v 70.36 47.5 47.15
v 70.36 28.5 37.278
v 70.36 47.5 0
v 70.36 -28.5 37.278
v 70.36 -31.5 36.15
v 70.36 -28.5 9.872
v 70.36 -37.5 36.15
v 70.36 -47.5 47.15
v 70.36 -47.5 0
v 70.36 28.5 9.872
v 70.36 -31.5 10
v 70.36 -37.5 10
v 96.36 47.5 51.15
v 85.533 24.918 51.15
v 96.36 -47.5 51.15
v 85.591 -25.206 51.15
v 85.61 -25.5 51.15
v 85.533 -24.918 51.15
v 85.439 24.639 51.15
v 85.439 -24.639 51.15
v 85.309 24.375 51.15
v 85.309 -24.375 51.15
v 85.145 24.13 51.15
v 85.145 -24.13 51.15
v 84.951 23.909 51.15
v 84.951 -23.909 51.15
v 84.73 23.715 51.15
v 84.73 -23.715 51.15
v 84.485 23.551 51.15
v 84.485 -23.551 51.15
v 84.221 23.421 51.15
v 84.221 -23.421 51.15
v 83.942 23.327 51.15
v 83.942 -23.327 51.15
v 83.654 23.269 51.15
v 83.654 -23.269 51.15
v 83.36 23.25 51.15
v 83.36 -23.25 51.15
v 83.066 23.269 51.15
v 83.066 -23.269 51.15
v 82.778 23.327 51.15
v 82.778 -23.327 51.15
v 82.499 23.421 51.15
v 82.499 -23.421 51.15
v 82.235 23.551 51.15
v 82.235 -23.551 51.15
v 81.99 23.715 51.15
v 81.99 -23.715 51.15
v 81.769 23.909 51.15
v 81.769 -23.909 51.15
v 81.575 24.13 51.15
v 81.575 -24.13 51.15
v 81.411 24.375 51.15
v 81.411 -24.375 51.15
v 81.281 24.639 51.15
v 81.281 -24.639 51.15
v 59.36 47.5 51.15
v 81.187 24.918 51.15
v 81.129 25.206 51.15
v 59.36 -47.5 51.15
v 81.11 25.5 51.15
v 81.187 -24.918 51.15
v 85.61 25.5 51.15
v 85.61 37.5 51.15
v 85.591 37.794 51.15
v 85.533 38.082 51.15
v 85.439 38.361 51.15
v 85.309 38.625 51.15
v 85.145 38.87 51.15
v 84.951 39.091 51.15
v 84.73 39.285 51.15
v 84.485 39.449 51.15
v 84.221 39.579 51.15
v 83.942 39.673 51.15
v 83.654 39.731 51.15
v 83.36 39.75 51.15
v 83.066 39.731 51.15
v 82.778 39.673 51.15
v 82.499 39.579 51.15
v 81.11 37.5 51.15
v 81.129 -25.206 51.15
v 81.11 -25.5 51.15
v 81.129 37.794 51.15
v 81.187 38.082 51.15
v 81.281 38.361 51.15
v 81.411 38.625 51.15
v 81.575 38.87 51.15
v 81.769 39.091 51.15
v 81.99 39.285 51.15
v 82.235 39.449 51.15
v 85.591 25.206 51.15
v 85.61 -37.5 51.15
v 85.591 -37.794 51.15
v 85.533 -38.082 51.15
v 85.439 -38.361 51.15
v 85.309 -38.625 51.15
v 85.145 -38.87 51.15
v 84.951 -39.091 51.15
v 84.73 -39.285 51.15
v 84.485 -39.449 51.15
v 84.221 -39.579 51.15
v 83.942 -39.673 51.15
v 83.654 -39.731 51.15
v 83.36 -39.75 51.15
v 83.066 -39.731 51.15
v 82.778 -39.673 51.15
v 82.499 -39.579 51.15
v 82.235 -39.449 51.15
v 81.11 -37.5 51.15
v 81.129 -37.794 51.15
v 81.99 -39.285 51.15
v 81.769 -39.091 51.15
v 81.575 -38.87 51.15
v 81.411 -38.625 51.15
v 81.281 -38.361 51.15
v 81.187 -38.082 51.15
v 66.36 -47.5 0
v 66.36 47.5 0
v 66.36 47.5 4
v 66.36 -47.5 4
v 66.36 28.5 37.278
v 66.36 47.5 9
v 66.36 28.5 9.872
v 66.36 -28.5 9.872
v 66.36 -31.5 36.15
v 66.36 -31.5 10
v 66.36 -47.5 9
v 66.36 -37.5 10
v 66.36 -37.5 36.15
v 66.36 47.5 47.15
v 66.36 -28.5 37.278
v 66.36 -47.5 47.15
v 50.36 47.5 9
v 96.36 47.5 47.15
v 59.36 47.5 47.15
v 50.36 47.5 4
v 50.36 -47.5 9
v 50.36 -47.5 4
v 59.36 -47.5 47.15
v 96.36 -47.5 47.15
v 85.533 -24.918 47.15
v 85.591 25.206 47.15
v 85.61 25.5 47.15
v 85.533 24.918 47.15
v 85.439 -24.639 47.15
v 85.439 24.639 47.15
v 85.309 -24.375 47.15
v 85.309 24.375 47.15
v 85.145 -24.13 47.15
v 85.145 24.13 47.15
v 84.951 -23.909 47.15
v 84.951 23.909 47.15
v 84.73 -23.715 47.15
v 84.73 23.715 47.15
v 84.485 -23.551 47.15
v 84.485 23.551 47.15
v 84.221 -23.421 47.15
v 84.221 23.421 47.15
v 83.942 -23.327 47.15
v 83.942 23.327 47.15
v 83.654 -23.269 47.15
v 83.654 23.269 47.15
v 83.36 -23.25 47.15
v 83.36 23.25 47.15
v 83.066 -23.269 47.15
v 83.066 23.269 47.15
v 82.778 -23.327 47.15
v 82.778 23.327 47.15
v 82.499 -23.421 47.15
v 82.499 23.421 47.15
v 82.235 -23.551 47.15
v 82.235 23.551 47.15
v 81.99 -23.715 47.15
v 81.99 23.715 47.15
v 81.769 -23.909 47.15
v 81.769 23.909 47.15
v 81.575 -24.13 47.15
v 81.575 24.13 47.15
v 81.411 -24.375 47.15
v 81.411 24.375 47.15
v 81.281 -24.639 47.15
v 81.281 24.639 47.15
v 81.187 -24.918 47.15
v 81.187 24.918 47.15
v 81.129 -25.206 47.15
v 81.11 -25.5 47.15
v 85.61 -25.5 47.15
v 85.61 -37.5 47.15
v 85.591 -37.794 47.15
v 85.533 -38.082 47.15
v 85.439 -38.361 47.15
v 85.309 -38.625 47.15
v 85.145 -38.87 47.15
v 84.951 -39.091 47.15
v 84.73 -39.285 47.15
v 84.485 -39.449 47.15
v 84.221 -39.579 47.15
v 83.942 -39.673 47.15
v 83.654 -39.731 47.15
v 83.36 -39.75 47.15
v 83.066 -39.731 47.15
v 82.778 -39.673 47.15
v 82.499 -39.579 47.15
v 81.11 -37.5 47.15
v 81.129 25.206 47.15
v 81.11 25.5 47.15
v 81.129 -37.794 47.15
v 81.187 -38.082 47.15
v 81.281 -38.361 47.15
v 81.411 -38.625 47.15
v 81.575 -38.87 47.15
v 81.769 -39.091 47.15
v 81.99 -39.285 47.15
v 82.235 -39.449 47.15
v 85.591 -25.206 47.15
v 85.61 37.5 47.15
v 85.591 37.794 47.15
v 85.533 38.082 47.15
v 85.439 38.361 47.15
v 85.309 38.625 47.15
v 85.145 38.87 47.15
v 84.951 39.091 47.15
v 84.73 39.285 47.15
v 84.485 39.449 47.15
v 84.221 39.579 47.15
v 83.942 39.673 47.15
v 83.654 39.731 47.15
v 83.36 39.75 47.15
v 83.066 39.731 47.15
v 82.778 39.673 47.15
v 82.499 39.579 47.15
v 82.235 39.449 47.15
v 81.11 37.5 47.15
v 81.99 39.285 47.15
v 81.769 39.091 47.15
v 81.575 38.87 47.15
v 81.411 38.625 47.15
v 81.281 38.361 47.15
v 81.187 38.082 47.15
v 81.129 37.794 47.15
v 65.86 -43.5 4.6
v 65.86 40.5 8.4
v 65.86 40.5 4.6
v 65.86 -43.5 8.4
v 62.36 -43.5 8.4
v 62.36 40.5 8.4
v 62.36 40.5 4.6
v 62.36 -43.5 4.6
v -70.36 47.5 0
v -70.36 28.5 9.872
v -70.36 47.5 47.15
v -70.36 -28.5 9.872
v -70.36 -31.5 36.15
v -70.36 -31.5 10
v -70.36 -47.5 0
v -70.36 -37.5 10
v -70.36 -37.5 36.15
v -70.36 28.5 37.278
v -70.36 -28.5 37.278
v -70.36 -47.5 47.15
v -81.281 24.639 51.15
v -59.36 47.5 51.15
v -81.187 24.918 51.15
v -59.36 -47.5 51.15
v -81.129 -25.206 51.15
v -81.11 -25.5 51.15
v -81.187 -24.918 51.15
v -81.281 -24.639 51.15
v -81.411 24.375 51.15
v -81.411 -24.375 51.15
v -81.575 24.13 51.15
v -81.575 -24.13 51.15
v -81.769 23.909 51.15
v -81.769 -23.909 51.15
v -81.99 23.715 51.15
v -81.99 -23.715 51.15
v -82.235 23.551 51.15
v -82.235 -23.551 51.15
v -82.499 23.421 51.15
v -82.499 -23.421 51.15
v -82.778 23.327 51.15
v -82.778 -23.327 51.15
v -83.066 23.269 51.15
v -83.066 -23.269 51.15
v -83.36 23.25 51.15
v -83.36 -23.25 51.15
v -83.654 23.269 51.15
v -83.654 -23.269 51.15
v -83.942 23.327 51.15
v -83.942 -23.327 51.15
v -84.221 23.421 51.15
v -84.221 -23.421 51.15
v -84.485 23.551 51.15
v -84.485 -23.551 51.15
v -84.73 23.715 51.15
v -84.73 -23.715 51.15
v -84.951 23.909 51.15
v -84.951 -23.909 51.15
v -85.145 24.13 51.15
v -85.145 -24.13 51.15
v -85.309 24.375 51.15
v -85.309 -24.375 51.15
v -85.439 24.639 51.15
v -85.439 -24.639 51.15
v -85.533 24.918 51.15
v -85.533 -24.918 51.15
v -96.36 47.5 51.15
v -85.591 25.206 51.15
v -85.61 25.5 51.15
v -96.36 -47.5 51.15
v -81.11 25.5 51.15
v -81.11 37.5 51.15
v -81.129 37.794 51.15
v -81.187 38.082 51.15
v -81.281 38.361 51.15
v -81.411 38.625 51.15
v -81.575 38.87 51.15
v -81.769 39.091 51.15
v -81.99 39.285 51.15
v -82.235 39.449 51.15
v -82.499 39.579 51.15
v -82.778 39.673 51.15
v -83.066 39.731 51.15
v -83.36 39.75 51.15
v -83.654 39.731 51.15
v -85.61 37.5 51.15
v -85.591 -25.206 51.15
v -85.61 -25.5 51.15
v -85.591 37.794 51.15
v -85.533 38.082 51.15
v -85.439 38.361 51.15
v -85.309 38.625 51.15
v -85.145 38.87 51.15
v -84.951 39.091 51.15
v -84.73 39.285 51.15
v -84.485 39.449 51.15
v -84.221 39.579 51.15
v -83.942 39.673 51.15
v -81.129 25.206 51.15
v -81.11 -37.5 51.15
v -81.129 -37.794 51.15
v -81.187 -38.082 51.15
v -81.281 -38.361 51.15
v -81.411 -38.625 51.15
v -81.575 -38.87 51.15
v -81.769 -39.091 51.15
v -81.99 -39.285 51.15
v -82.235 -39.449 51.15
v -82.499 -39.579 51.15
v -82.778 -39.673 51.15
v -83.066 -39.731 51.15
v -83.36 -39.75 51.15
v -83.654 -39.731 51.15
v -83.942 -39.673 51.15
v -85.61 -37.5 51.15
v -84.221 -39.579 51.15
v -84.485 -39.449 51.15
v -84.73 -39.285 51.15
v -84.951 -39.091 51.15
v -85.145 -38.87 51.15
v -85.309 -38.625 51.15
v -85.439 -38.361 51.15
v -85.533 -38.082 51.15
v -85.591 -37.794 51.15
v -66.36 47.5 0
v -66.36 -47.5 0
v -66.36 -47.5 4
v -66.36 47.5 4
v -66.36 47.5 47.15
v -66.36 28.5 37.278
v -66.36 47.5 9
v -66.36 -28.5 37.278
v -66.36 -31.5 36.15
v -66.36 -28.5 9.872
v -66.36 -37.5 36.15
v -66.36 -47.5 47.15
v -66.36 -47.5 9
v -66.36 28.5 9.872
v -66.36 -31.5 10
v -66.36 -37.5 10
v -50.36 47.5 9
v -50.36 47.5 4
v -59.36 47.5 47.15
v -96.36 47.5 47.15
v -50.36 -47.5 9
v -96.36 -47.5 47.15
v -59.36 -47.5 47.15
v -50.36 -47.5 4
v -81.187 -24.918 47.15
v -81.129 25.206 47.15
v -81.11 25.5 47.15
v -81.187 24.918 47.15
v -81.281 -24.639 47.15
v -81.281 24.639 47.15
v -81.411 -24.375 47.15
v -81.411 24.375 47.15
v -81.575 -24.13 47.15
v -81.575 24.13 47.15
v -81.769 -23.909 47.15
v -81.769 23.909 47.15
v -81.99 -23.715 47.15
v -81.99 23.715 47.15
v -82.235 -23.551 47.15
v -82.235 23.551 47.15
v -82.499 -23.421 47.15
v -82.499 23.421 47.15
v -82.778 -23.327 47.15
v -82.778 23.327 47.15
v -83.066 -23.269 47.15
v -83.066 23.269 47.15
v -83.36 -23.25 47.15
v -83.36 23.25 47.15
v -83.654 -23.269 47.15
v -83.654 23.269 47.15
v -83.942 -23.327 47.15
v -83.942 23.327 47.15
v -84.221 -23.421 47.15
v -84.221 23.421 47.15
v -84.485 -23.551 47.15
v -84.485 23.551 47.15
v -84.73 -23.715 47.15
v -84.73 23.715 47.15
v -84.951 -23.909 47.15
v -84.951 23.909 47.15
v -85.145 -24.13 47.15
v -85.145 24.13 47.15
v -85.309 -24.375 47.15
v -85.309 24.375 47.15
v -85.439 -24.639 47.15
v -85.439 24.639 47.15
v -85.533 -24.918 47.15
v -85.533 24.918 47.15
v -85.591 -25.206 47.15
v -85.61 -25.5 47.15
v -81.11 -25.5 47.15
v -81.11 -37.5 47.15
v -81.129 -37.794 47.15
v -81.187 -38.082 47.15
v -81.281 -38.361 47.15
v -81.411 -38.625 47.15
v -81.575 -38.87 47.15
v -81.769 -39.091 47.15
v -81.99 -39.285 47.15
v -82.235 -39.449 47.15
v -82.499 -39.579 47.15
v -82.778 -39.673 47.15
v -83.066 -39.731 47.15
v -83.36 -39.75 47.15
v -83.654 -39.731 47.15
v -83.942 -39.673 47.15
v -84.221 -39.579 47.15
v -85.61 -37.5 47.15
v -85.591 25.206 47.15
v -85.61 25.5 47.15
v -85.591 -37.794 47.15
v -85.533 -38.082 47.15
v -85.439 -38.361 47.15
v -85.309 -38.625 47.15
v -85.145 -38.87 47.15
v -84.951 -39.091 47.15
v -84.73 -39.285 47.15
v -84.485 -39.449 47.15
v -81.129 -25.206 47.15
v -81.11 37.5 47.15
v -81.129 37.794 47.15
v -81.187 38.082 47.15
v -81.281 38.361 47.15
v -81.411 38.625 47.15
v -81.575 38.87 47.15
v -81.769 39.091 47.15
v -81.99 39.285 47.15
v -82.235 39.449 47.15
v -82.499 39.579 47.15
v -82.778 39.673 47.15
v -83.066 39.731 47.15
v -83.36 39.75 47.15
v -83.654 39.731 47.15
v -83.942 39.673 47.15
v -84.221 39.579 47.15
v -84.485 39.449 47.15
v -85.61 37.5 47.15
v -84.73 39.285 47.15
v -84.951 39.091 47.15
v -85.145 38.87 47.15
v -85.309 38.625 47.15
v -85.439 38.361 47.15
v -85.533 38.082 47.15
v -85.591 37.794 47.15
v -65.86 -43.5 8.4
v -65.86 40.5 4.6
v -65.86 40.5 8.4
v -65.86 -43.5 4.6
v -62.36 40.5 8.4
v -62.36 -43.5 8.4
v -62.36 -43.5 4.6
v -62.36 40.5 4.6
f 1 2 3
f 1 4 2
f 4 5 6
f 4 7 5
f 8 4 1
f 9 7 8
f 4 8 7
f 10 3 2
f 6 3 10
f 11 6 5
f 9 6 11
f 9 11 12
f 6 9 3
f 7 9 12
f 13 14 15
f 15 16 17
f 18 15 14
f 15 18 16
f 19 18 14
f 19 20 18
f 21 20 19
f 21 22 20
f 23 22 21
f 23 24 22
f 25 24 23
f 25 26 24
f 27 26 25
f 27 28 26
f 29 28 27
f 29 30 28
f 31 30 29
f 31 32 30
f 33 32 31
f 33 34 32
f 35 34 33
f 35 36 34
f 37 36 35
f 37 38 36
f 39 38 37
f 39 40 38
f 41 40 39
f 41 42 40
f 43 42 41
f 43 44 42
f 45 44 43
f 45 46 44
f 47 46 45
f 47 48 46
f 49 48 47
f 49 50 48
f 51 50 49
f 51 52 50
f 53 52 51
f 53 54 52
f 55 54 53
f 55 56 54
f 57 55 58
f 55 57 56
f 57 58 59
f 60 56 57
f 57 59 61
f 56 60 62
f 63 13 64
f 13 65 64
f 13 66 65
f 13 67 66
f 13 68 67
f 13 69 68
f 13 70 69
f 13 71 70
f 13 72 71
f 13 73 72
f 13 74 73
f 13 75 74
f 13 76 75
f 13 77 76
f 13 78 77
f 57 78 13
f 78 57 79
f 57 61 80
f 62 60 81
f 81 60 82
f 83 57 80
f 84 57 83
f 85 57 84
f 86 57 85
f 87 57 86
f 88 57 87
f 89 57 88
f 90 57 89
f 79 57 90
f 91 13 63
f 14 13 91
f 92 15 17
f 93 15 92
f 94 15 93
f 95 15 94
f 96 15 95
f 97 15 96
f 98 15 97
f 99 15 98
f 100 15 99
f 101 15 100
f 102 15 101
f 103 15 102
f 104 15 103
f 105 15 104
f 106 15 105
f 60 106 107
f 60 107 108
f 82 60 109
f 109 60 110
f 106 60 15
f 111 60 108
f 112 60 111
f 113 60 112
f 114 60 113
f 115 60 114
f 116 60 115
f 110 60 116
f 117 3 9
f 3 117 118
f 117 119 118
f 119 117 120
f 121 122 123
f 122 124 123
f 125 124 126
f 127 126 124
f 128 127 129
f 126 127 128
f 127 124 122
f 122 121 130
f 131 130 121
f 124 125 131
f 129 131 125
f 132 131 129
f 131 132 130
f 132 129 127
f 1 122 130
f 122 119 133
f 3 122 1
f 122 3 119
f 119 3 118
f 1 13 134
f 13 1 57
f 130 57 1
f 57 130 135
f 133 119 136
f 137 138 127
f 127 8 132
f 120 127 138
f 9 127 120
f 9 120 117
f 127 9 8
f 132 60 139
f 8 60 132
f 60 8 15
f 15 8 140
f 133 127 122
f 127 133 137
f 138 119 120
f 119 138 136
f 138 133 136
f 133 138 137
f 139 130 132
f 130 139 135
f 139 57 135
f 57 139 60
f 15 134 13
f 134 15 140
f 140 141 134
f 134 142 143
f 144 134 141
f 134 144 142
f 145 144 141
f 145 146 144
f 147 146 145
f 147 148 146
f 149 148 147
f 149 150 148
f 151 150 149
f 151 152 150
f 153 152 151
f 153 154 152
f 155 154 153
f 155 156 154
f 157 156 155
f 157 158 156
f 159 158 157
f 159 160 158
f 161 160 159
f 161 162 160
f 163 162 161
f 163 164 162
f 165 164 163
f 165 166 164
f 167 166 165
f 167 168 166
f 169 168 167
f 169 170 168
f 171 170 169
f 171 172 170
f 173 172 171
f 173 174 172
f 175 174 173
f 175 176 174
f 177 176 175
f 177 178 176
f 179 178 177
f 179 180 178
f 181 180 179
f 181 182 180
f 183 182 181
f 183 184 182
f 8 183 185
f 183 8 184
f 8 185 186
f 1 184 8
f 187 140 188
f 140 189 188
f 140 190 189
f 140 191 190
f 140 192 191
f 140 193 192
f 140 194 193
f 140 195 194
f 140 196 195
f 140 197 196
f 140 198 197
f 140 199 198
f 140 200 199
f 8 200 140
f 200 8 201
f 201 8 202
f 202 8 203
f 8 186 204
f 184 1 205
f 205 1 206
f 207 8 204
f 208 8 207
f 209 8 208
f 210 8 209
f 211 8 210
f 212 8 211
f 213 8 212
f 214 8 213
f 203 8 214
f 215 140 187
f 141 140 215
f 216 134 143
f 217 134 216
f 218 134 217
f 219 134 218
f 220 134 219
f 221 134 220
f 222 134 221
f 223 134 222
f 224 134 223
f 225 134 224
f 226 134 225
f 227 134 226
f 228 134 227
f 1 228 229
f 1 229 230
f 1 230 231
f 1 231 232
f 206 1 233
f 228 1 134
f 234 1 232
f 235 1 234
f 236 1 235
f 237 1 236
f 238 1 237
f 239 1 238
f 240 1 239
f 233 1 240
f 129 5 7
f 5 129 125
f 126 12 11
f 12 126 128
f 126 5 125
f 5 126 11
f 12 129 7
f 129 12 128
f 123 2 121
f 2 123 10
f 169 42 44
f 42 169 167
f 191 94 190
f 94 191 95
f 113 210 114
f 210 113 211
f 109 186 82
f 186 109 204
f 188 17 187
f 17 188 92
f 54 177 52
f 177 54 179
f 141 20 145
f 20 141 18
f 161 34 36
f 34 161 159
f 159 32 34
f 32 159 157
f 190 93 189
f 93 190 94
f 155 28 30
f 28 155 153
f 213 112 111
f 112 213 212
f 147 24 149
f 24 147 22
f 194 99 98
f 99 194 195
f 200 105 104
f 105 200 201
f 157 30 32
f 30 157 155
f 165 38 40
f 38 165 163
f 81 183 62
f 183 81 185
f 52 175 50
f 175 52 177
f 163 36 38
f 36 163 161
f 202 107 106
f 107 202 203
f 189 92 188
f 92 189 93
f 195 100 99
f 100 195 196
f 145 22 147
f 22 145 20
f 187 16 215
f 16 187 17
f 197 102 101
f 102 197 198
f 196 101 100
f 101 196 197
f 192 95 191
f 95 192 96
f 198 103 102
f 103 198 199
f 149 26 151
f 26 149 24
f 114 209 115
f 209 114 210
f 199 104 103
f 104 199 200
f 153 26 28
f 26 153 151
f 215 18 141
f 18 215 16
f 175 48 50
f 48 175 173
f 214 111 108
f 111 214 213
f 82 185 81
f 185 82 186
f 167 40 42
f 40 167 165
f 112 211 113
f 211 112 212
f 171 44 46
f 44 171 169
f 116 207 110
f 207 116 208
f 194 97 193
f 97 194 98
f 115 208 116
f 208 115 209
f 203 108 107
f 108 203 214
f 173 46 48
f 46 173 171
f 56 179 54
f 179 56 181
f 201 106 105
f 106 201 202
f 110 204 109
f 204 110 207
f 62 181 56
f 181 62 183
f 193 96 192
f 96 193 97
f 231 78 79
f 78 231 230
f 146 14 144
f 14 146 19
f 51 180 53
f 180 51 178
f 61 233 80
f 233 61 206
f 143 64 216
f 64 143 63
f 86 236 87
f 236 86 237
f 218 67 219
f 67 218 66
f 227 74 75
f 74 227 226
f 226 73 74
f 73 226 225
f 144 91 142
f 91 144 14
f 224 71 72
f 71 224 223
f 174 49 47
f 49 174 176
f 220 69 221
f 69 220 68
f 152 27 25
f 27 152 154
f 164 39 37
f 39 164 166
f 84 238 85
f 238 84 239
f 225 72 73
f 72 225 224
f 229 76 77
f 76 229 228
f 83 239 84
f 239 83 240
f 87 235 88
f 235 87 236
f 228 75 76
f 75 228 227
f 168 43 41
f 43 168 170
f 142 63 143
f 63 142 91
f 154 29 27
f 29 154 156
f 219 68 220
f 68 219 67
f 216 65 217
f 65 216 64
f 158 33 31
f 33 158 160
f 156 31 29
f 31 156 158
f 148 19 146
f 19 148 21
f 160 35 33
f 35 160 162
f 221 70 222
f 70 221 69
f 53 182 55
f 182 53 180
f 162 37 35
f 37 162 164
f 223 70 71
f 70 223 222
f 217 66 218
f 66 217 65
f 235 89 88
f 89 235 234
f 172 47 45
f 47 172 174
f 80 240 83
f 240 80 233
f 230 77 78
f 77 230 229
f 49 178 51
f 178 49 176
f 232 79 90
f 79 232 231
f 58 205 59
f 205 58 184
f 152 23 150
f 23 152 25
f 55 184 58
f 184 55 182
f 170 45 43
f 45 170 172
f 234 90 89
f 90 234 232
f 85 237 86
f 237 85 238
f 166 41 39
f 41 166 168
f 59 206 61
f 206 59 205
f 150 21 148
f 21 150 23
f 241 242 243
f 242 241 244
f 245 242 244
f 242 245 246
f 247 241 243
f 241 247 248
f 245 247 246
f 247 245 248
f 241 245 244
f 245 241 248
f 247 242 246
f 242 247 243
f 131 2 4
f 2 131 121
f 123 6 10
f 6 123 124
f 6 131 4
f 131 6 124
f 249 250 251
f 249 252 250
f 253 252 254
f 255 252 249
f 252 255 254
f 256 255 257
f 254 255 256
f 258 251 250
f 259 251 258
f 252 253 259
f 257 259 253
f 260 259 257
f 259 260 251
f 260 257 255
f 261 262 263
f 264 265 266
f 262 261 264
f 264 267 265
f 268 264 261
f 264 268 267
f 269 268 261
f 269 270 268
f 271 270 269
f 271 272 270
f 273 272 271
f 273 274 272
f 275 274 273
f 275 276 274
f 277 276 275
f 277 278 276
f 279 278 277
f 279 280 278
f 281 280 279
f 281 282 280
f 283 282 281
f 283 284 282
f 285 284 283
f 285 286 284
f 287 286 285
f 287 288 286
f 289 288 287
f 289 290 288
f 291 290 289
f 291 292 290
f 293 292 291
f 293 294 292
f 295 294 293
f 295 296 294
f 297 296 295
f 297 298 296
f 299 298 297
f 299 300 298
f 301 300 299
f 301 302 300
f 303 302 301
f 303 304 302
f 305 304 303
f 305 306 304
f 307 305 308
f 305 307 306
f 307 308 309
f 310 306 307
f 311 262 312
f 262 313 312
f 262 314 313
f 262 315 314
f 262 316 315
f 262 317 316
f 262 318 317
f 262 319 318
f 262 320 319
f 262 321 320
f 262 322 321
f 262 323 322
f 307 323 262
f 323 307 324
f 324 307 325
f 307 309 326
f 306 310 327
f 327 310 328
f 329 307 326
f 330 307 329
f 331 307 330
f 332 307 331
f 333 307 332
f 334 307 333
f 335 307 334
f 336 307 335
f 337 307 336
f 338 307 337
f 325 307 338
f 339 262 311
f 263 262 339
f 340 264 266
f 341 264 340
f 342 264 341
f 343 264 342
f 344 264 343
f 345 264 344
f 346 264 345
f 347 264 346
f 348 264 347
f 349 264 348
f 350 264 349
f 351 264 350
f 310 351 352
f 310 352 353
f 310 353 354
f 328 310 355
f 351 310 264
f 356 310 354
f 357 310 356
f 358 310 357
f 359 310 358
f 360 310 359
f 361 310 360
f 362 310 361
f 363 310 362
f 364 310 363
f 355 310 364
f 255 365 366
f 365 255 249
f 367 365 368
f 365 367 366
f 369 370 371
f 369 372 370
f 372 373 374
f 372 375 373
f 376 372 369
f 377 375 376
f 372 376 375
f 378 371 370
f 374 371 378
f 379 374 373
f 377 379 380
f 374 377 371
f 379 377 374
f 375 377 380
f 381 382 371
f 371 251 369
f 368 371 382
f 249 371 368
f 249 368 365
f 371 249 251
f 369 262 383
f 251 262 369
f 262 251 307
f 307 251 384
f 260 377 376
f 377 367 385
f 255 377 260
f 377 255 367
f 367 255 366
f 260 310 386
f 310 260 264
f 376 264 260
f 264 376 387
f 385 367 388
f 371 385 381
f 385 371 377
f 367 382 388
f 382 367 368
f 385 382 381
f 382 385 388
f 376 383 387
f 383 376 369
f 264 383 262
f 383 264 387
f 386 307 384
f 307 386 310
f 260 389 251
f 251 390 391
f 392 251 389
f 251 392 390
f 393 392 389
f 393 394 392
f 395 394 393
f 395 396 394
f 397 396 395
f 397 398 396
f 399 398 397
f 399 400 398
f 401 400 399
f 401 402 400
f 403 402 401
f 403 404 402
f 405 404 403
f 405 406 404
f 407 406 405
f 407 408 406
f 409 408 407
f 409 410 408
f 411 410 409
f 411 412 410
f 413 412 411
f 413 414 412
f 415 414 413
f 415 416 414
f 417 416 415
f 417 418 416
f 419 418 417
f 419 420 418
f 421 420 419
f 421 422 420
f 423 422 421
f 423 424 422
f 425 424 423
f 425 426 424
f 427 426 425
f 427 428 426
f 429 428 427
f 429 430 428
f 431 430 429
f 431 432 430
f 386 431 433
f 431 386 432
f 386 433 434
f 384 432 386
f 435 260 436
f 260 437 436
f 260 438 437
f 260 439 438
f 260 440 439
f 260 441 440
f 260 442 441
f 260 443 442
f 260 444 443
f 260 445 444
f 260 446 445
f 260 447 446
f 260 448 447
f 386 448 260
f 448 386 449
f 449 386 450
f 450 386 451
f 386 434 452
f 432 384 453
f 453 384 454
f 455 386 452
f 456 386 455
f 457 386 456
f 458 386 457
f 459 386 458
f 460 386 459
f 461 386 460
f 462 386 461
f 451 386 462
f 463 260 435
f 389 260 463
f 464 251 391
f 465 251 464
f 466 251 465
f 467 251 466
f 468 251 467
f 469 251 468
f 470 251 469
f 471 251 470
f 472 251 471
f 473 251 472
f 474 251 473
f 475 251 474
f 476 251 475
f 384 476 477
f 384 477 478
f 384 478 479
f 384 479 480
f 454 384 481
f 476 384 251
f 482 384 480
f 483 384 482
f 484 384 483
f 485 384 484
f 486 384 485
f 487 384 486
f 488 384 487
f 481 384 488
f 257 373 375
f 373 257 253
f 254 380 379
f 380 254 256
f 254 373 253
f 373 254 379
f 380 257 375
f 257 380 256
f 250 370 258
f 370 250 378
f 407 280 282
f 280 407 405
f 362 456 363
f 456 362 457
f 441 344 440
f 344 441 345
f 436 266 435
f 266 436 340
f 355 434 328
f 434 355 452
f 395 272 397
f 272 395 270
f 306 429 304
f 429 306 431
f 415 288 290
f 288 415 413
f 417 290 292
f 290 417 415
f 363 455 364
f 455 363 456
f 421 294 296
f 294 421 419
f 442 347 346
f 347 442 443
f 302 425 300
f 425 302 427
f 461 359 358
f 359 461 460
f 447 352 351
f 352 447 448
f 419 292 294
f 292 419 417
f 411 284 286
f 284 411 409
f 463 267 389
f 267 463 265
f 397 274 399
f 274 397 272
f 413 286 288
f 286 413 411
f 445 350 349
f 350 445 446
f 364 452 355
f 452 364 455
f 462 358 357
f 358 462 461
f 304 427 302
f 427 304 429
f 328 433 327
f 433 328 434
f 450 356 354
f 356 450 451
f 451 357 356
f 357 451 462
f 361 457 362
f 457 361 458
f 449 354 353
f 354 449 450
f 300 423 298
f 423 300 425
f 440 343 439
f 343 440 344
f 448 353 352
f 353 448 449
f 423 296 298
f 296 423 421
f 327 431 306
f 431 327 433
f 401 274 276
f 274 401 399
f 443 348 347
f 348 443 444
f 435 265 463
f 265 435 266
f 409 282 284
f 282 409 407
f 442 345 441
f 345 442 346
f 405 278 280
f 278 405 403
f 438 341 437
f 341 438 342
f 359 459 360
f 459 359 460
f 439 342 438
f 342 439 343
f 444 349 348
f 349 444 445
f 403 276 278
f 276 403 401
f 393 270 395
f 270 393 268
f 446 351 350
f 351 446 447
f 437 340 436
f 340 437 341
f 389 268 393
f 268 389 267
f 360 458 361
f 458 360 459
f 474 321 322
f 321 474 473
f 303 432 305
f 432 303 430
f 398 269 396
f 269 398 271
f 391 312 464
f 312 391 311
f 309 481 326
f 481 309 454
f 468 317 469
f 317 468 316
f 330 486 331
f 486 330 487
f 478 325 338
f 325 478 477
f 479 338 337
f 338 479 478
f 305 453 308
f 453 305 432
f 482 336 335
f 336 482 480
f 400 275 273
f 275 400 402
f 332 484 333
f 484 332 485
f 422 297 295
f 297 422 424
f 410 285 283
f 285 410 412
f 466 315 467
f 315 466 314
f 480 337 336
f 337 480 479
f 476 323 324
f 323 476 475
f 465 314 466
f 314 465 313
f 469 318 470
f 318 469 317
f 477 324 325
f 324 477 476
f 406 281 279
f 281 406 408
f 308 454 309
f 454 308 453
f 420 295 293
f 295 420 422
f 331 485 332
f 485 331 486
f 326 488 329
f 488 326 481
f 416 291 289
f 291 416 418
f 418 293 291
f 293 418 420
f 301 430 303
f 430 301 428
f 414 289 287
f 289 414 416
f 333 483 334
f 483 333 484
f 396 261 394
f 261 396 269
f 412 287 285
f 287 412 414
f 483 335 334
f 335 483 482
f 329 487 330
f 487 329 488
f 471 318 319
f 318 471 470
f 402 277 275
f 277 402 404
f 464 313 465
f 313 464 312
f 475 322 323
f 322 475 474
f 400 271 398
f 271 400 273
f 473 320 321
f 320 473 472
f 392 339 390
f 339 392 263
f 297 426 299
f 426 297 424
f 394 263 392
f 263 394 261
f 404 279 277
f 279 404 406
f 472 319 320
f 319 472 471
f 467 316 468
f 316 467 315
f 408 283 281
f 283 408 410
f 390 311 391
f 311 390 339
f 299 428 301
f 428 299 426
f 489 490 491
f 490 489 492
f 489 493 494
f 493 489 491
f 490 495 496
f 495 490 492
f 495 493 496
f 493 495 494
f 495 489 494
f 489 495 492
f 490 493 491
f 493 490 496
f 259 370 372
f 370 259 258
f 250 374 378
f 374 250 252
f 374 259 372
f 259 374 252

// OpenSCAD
/*
Breathable Under-Desk Mini PC Mount (Front/Back Open) - LIGHTWEIGHT (TUNED)
=========================================================================

Two side brackets (left + right) that grip the PC on the top and support it on the bottom,
leaving front and back faces completely open.

Tuned for:
- Mini PC weight ~1.1 lb (~0.5 kg)
- Wood screws into a wood desk

Includes:
- Wider resting shelf
- Filled-in joints (removed chamfer relief cuts)
- 2 screw slots, moved farther from ends
- Material reduction: ribbed wall + pockets in shelf & lip + no-cut zones under screw lines

NOTE:
OpenSCAD has no `return` or `continue`, so logic is expressed with if-block guards.
*/

//////////////////////
// PC DIMENSIONS
//////////////////////
pc_w = 122.32;
pc_d = 111.59;
pc_h = 36.75;

//////////////////////
// USER TUNING
//////////////////////
part = "assembly"; // "assembly" | "left" | "right" | "both"
show_pc = false;    // only in assembly preview

clearance = 1.2;         // mm gap around PC
wall = 4;                // mm bracket wall thickness

// Resting shelf
shelf_depth = 16;        // mm shelf under PC
shelf_th = 5;            // mm thickness of shelf

// Retention lip
lip_depth = 7;           // mm top lip overlap
lip_th = 4;              // thickness of lip

// Length along depth (Y)
bracket_len = 95;        // mm

// Top flange (screws into desk)
flange_w = 26;           // mm flange extension outwards (+X)
flange_th = 4;           // mm thickness of flange
hole_d = 4.5;            // mm screw clearance diameter
slot_len = 12;           // mm elongated slot length (adjustability)
hole_edge = 16;          // mm from ends (moved farther from edge)

// Vent slots (simple slots)
slot_w = 6;              // mm
slot_gap = 6;            // mm
slot_margin = 10;        // mm

// LIGHTWEIGHTING (tuned)
lighten      = true;

edge_beam    = 5;        // mm no-cut border around wall edges
joint_beam   = 12;       // mm keep solid near shelf/lip junctions (strength)
flange_beam  = 12;       // mm keep solid around screw-slot y-lines (strength)

rib_w        = 4;        // mm rib thickness
rib_gap      = 18;       // mm spacing for wall lightening (bigger = lighter)

shelf_edge        = 4;   // mm solid border on shelf along depth edges
shelf_pocket_gap  = 12;  // mm spacing along depth for pockets
shelf_pocket_w    = 12;  // mm pocket width along depth

lip_edge = 3;            // mm solid border on lip

// Edge rounding (off by default; slower)
inner_corner_r = 1.5;    // mm
use_rounding = false;

//////////////////////
// DERIVED
//////////////////////
inner_h = pc_h + 2*clearance;

//////////////////////
// HELPERS
//////////////////////

module elongated_slot(d, len, th){
  hull(){
    translate([-len/2,0,0]) cylinder(h=th+0.2, d=d, $fn=48);
    translate([ len/2,0,0]) cylinder(h=th+0.2, d=d, $fn=48);
  }
}

module vent_slots(plate_x, plate_y, plate_z){
  for (y = [slot_margin : (slot_w + slot_gap) : (plate_y - slot_margin - slot_w)]){
    translate([-1, y, slot_margin])
      cube([plate_x+2, slot_w, plate_z - 2*slot_margin], center=false);
  }
}

module maybe_round(){
  if(use_rounding){
    minkowski(){
      children();
      sphere(r=inner_corner_r, $fn=24);
    }
  } else children();
}

//////////////////////
// LIGHTENING CUTS
//////////////////////

// Ribbed cutouts in the main vertical wall plate.
// Assumes wall plate is at [0..plate_th] x [0..plate_d] x [0..plate_h]
module lighten_wall(plate_th, plate_d, plate_h, flange_th){
  if(lighten){
    usable_h = plate_h - flange_th - 1;

    // solid zones near bottom shelf and top lip joints
    shelf_z1 = joint_beam + 2*wall + shelf_th;
    lip_z0   = usable_h - (joint_beam + 2*wall);

    // y positions of screw slots
    screw_y1 = hole_edge;
    screw_y2 = plate_d - hole_edge;

    for (y = [edge_beam : rib_gap : (plate_d - edge_beam - rib_gap)]){

      // Only cut if NOT within the no-cut bands around screw y zones
      ok_y =
        (abs(y - screw_y1) >= flange_beam) &&
        (abs(y - screw_y2) >= flange_beam);

      ok_z = (lip_z0 > shelf_z1);

      if(ok_y && ok_z){
        translate([-0.5, y, shelf_z1])
          cube([plate_th+1,
                rib_gap - rib_w,
                lip_z0 - shelf_z1], center=false);
      }
    }
  }
}

// Pockets in the shelf: removes material but keeps outer edges + a solid band near the wall joint
module lighten_shelf(plate_d){
  if(lighten){
    keep_near_wall = joint_beam;

    x_cut_start = -shelf_depth + keep_near_wall;
    x_cut_w     = shelf_depth - keep_near_wall - 0.5;

    // Only pocket if we actually have room
    if(x_cut_w > 0){
      for (y = [shelf_edge : shelf_pocket_gap : (plate_d - shelf_edge - shelf_pocket_w)]){
        translate([x_cut_start, y, wall + 0.6])
          cube([x_cut_w, shelf_pocket_w, shelf_th - 1.2], center=false);
      }
    }
  }
}

// Pockets in the top lip: removes material but keeps border + solid band near wall joint
module lighten_lip(plate_d, lip_z){
  if(lighten){
    keep_near_wall = joint_beam;

    x_cut_start = -lip_depth + keep_near_wall;
    x_cut_w     = lip_depth - keep_near_wall - 0.5;

    if(x_cut_w > 0){
      for (y = [lip_edge : shelf_pocket_gap : (plate_d - lip_edge - shelf_pocket_w)]){
        translate([x_cut_start, y, lip_z + 0.6])
          cube([x_cut_w, shelf_pocket_w, lip_th - 1.2], center=false);
      }
    }
  }
}

//////////////////////
// SINGLE BRACKET (RIGHT)
//////////////////////
module bracket_right(){
  plate_th = wall;
  plate_d  = bracket_len;
  plate_h  = inner_h + wall*2 + flange_th;

  lip_z = wall + inner_h + wall;

  maybe_round()
  difference(){
    union(){
      // Main vertical plate
      cube([plate_th, plate_d, plate_h], center=false);

      // Bottom shelf (supports PC) - extends inward (negative X direction)
      translate([-shelf_depth, 0, wall])
        cube([shelf_depth, plate_d, shelf_th], center=false);

      // Top lip (retains PC) - extends inward (negative X direction)
      translate([-lip_depth, 0, lip_z])
        cube([lip_depth, plate_d, lip_th], center=false);

      // Top flange to screw into desk (extends outward +X)
      translate([plate_th, 0, plate_h - flange_th])
        cube([flange_w, plate_d, flange_th], center=false);
    }

    // Base vent slots in wall plate
    vent_height = plate_h - flange_th - 1;
    vent_slots(plate_th, plate_d, vent_height);

    // Large window cutout for airflow + side cable clearance
    translate([-0.5, plate_d*0.20, wall + inner_h*0.15])
      cube([plate_th+1, plate_d*0.60, inner_h*0.70], center=false);

    // Screw slots in the flange (2 slots, farther from ends)
    for (yy = [hole_edge, plate_d - hole_edge]){
      translate([plate_th + flange_w/2, yy, plate_h - flange_th - 0.1])
        rotate([0,0,90])
          elongated_slot(hole_d, slot_len, flange_th);
    }

    // Lightweighting
    lighten_wall(plate_th, plate_d, plate_h, flange_th);
    lighten_shelf(plate_d);
    lighten_lip(plate_d, lip_z);
  }
}

module bracket_left(){
  mirror([1,0,0]) bracket_right();
}

//////////////////////
// PC (for assembly preview)
//////////////////////
module pc_mock(){
  color([0.2,0.2,0.2,0.45])
    translate([
      -pc_w/2,                 // center in X
      -pc_d/2,                 // center in Y
      wall + shelf_th           // RESTS ON TOP of the shelf
    ])
      cube([pc_w, pc_d, pc_h], center=false);
}

//////////////////////
// ASSEMBLY
//////////////////////
module assembly(){
  // PC sits exactly where it would in real life
  if(show_pc) pc_mock();

  // Brackets centered along PC depth
  y0 = -bracket_len/2;

  // Brackets aligned so inner faces touch PC sides with clearance
  x_offset = pc_w/2 + clearance;

  // Right bracket
  translate([ x_offset + wall, y0, 0 ])
    bracket_right();

  // Left bracket
  translate([-(x_offset + wall), y0, 0 ])
    bracket_left();
}

//////////////////////
// OUTPUT SELECTOR
//////////////////////
if(part == "assembly"){
  assembly();
} else if(part == "right"){
  bracket_right();
} else if(part == "left"){
  bracket_left();
} else if(part == "both"){
  translate([0, -bracket_len-20, 0]) bracket_left();
  translate([0,  0,             0]) bracket_right();
} else {
  assembly();
}
